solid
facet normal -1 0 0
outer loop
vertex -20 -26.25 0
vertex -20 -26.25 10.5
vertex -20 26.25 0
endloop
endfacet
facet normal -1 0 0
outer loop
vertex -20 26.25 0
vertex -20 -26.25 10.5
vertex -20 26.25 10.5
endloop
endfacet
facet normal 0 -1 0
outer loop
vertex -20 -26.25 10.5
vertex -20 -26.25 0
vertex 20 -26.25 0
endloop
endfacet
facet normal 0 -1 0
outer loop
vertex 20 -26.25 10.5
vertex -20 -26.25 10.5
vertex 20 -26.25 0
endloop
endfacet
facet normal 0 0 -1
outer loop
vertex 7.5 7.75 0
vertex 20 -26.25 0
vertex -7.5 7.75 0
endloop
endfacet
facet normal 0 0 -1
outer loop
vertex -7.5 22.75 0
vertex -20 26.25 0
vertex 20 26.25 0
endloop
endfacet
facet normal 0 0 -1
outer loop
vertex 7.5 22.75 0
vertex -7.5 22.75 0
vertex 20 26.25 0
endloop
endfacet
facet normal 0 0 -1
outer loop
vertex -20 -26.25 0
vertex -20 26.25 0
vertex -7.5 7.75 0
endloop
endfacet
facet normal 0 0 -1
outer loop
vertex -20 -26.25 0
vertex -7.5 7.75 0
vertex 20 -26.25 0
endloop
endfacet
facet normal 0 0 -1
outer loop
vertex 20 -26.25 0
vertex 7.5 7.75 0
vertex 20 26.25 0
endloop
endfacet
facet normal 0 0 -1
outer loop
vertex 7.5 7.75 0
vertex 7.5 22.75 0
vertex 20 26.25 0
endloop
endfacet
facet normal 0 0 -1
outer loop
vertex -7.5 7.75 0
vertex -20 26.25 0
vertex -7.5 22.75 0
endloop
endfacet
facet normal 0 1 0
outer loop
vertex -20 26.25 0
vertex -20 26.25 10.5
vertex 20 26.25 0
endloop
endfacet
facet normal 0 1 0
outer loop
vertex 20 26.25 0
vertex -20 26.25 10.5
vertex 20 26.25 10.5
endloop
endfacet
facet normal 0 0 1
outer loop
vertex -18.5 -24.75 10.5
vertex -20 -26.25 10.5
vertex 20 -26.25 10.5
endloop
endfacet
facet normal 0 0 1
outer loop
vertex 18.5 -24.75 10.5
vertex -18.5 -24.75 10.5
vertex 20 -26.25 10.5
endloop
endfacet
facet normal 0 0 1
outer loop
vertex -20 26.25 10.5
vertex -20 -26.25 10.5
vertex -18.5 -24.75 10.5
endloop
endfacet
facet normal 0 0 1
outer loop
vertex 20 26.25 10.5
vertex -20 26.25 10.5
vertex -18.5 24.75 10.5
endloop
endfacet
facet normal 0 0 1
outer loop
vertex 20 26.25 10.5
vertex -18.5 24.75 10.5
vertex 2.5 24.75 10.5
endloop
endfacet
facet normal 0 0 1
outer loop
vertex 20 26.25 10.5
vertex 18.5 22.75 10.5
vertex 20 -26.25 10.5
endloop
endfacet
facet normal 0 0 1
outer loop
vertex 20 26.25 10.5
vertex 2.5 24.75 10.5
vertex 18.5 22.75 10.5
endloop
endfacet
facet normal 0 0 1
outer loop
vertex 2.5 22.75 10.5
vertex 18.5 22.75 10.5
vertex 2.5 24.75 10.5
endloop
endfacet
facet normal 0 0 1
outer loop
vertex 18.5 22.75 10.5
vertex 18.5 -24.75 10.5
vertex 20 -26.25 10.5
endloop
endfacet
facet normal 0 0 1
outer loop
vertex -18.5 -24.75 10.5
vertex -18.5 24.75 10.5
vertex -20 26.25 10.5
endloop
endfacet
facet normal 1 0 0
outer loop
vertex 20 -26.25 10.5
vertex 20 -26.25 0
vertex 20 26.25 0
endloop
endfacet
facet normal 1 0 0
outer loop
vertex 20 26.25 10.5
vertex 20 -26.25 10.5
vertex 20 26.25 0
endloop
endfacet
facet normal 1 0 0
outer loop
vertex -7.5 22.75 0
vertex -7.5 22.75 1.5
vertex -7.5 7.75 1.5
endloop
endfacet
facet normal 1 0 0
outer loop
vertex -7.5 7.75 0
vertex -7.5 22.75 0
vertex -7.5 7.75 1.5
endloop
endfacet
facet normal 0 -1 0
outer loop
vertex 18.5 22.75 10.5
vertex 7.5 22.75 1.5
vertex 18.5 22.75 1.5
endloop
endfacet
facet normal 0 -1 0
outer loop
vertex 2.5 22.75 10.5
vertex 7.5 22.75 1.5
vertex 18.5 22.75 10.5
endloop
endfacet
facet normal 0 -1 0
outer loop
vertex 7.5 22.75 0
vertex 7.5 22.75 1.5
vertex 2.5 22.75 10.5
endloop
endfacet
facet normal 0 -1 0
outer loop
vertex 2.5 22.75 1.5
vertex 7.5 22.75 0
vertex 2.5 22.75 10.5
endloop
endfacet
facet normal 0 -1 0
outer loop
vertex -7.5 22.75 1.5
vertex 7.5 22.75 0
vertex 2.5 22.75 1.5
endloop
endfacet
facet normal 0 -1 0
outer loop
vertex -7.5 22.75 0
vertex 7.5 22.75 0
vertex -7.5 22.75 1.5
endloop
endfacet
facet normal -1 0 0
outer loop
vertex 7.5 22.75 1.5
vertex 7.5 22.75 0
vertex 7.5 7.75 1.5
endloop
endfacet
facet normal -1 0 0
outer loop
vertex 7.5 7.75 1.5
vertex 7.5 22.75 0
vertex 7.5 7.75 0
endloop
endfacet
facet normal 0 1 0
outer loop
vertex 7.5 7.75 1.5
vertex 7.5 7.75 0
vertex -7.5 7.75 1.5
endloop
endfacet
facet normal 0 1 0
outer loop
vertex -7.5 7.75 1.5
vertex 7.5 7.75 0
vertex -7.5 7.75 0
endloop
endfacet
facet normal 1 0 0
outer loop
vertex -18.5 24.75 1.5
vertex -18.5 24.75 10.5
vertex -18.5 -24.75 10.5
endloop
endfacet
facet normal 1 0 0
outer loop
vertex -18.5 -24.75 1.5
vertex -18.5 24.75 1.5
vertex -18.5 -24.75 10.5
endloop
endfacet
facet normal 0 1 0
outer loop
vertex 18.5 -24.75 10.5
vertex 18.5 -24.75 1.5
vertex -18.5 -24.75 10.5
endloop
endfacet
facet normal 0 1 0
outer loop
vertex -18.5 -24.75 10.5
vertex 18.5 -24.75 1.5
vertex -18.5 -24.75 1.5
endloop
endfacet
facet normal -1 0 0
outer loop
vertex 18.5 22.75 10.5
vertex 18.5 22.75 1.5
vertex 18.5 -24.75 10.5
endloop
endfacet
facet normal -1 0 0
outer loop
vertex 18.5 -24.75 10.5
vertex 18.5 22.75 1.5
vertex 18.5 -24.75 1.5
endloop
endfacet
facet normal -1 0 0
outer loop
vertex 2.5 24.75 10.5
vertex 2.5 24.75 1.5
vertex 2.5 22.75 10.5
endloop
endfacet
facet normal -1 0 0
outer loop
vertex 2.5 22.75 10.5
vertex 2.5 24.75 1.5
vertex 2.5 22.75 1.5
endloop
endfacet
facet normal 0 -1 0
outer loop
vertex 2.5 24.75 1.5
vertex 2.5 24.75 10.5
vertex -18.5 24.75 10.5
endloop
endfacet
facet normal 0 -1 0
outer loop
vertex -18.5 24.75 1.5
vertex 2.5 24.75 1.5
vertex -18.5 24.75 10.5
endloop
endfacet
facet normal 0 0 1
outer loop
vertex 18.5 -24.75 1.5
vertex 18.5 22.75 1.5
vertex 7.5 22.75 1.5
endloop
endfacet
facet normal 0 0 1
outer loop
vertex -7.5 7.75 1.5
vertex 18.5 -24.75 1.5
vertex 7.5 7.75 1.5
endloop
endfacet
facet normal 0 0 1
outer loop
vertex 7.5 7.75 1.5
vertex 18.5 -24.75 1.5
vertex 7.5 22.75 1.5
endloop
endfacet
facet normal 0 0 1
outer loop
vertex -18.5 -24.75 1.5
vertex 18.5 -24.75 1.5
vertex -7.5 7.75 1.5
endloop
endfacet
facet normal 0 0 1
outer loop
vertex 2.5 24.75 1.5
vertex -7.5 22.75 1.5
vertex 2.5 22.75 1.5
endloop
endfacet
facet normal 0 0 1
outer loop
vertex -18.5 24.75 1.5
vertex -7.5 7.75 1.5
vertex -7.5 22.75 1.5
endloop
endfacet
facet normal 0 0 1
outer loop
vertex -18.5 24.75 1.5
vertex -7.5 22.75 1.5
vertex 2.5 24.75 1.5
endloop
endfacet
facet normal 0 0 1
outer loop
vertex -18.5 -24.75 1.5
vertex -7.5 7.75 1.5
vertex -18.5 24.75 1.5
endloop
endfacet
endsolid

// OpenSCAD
inner_length_long=49.5;
inner_length_short=47.5;
inner_width=37;
short_width=16;
height=10.5;
wall_thickness=1.5;
floor_cutout_length=15;

//derived
long_width=inner_width-short_width;

outter_length=inner_length_long+2*wall_thickness;
outter_width=inner_width+2*wall_thickness;


//move the whole thing to the center
translate([-outter_width/2,-outter_length/2,0]){

difference(){
//main cube
cube([outter_width,outter_length,height]);

//cut out long part
translate([wall_thickness,wall_thickness,wall_thickness]){
 cube([long_width,inner_length_long,height]);
}

//cut out short part
translate([wall_thickness+long_width-1,wall_thickness,wall_thickness]){
 cube([short_width+1,inner_length_short,height]);
}

//cut out floor
translate([outter_width/2-floor_cutout_length/2,wall_thickness+inner_length_short-floor_cutout_length,-1]){
 cube([floor_cutout_length,floor_cutout_length,wall_thickness*2]);
}

}

}
